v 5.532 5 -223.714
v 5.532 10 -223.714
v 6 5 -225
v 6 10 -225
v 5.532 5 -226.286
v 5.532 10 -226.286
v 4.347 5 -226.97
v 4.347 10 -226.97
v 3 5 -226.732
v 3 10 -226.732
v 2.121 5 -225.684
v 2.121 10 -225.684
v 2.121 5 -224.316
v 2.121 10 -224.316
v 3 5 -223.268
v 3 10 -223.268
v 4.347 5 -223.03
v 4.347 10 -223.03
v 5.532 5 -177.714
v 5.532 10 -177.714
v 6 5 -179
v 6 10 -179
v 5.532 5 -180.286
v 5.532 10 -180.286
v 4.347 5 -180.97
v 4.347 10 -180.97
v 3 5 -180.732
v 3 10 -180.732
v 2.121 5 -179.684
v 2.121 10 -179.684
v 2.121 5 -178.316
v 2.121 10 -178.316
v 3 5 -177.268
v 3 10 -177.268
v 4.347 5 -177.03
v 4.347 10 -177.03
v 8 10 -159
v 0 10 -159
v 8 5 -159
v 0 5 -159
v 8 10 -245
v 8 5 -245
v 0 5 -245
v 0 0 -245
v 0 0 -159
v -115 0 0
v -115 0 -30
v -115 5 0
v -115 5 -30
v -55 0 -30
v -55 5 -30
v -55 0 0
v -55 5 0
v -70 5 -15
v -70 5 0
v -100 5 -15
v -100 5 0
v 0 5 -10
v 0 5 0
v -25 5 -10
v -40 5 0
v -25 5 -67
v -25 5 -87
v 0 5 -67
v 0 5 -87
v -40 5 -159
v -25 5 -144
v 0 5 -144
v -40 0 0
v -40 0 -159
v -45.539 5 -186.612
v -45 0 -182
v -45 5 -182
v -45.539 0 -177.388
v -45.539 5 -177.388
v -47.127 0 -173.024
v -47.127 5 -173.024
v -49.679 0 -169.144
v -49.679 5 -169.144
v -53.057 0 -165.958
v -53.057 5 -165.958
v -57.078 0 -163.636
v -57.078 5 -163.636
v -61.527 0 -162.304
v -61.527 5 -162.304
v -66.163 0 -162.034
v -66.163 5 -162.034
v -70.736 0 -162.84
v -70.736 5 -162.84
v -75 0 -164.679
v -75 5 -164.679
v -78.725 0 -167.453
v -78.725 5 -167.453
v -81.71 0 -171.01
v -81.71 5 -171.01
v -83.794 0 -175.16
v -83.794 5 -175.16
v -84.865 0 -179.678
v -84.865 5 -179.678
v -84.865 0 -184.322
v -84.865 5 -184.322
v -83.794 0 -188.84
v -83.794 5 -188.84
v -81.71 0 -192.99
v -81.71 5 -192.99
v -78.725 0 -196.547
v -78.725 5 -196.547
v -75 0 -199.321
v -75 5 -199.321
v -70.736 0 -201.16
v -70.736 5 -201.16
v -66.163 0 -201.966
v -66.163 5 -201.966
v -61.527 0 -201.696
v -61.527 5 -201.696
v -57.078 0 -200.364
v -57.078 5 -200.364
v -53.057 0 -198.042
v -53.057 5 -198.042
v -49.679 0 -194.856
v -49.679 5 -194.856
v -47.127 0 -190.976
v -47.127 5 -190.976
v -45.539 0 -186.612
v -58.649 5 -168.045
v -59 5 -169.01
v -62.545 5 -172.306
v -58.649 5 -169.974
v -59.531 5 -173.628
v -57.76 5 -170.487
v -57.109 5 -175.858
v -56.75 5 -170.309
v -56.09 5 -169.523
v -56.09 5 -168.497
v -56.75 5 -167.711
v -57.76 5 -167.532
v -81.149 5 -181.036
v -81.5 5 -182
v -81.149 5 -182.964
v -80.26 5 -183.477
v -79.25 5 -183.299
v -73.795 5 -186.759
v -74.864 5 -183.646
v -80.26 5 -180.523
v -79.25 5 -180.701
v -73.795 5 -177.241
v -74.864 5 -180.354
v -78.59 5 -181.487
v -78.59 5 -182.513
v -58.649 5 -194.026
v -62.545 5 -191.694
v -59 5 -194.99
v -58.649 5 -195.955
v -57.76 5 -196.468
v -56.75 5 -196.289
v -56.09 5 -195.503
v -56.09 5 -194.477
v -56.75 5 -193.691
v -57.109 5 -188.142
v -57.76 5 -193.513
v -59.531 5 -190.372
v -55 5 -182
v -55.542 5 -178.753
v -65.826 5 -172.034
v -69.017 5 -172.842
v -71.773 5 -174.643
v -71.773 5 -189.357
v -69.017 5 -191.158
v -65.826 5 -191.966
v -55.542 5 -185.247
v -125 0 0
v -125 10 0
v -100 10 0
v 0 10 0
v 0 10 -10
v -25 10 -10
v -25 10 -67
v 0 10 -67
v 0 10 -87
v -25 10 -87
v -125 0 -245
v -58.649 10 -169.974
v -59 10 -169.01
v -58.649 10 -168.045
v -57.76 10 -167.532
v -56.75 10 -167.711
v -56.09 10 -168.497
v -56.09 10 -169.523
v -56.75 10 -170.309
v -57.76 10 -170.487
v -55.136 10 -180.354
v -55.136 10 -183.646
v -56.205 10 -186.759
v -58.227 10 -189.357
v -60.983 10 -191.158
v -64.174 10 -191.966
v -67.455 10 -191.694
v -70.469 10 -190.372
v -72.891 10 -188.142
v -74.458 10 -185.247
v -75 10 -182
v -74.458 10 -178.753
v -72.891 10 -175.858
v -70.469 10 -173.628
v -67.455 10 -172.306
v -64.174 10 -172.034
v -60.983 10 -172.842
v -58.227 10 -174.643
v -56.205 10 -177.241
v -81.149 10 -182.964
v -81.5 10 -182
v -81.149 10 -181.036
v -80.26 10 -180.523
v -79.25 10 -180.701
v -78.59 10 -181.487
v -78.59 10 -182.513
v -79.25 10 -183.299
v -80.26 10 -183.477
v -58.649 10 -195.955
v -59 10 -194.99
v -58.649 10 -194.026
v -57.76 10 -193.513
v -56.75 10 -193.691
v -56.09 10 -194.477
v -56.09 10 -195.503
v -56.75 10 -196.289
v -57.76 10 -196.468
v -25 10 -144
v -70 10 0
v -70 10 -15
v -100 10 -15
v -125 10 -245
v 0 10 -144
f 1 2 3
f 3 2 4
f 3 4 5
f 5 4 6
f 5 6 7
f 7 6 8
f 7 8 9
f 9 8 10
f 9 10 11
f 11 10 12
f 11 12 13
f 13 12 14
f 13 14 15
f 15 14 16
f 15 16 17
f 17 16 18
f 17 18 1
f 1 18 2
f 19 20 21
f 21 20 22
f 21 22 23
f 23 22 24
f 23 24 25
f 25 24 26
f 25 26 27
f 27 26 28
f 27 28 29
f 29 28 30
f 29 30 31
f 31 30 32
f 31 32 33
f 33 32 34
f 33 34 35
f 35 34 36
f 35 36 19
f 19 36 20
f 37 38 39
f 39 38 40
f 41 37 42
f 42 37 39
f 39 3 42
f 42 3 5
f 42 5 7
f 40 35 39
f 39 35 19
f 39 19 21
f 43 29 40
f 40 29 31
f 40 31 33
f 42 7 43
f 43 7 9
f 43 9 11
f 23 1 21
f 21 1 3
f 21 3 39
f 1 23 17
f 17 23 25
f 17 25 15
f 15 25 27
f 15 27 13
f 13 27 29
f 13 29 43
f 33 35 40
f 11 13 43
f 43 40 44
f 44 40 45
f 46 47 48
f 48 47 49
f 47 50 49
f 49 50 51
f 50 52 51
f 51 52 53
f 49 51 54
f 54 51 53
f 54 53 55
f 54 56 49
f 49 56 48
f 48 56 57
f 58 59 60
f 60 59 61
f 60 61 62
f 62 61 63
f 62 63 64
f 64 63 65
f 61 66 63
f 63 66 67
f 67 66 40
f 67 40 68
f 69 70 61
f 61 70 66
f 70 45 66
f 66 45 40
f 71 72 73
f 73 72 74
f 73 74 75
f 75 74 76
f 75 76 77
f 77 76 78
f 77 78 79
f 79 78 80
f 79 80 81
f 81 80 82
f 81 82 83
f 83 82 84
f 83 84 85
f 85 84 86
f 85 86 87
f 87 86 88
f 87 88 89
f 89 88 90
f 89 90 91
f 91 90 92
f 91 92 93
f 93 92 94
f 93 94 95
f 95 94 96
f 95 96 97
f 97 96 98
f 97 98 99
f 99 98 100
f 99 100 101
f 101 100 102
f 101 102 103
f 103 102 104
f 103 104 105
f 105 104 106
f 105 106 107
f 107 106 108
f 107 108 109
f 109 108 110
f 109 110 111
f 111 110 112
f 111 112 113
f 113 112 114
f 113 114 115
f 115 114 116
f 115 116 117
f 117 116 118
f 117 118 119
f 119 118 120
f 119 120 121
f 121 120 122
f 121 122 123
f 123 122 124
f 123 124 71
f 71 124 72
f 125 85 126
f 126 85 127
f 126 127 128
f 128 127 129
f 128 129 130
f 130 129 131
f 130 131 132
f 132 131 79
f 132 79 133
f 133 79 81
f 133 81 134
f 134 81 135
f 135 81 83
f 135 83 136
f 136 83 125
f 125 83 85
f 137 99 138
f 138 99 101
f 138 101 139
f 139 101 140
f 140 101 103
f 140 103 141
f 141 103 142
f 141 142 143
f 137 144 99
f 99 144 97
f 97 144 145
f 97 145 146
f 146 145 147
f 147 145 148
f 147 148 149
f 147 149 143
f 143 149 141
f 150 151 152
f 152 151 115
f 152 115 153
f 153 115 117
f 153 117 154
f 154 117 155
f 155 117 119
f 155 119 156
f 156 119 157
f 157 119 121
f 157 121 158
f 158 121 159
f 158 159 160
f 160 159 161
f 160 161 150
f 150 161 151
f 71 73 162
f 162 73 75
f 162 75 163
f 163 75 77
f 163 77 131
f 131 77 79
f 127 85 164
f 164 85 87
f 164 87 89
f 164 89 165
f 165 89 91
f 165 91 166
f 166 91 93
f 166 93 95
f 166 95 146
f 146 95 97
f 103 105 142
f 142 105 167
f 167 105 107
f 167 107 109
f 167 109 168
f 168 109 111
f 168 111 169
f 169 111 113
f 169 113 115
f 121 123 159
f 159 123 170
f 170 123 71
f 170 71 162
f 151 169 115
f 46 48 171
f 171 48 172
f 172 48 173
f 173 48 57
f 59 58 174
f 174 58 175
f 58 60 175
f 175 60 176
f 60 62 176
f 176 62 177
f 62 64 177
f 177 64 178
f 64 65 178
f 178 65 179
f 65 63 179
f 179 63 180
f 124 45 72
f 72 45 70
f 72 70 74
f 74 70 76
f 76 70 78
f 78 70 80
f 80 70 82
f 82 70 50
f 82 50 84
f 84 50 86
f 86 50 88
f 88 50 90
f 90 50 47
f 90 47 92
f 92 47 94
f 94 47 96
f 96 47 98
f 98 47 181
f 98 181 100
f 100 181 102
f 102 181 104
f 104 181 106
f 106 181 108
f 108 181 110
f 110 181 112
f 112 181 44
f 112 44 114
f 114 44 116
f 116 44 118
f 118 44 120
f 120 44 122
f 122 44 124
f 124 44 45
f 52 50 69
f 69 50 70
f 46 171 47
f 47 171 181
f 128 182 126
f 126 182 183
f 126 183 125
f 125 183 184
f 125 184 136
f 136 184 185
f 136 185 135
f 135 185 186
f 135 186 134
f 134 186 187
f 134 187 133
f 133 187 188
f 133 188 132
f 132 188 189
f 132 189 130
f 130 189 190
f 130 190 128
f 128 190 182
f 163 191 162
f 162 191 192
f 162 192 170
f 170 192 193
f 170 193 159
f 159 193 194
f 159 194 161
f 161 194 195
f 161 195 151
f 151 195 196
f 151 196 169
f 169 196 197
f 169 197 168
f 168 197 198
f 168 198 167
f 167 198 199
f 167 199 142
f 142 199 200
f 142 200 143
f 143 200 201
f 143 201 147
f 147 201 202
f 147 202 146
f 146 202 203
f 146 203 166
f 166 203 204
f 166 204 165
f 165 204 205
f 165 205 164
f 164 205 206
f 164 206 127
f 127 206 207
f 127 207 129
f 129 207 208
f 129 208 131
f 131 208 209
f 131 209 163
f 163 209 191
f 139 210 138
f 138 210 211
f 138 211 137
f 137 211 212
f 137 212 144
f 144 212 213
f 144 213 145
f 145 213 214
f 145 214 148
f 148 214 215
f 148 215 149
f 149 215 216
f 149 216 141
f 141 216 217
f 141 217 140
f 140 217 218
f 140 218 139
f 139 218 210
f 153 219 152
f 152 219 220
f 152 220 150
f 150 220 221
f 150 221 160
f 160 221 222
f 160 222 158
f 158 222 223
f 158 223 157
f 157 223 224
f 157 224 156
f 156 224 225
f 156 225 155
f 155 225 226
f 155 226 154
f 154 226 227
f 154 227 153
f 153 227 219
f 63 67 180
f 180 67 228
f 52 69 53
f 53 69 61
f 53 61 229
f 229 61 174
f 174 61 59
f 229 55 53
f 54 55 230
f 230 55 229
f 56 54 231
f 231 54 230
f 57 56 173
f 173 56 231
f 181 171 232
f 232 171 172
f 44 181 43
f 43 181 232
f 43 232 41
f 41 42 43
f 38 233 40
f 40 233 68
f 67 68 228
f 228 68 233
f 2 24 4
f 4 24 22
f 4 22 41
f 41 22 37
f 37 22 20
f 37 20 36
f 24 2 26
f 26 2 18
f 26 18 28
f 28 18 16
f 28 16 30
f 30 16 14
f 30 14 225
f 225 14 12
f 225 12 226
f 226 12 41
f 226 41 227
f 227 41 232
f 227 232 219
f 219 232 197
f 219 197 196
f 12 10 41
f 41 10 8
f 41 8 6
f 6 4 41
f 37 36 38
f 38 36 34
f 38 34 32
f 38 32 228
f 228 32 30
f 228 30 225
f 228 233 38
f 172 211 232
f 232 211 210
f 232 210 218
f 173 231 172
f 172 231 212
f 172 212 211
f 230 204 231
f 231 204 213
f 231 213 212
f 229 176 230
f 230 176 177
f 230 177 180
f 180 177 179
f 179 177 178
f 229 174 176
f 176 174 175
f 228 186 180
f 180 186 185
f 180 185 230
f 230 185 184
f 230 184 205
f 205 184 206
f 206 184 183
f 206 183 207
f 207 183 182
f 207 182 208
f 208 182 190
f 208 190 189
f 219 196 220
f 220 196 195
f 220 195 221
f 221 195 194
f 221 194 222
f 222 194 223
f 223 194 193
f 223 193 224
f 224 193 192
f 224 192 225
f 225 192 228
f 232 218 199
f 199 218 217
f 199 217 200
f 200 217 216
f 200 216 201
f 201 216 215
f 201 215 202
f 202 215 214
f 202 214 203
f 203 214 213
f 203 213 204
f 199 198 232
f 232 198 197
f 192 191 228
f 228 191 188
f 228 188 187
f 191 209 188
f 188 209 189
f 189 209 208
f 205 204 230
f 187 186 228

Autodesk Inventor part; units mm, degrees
ref_plane "YZ Plane" through (0, 0, 0) normal (1, 0, 0) x (0, 1, 0)
ref_plane "XZ Plane" through (0, 0, 0) normal (0, 1, 0) x (-1, 0, 0)
ref_plane "XY Plane" through (0, 0, 0) normal (0, 0, 1) x (1, 0, 0)
sketch "草图1" plane through (0, 0, 0) normal (0, 1, 0) x (-1, 0, 0)
  line L0 (125, 245) -> (-125, 245)
  line L1 (-125, 245) -> (-125, -245)
  line L2 (-125, -245) -> (125, -245)
  line L3 (125, -245) -> (125, 245)
  line L4 (0, 3) -> (0, -5)
  line L5 (3.5058, 0) -> (-3.4421, 0)
  line L6 (25, 144) -> (-32, 144)
  line L7 (-32, 144) -> (-32, 87)
  line L8 (-32, 87) -> (25, 87)
  line L9 (25, 87) -> (25, 144)
  line L10 (25, 67) -> (-32, 67)
  line L11 (-32, 67) -> (-32, 10)
  line L12 (-32, 10) -> (25, 10)
  line L13 (25, 10) -> (25, 67)
  line L14 (25, -10) -> (-32, -10)
  line L15 (-32, -10) -> (-32, -67)
  line L16 (-32, -67) -> (25, -67)
  line L17 (25, -67) -> (25, -10)
  line L18 (25, -87) -> (-32, -87)
  line L19 (-32, -87) -> (-32, -144)
  line L20 (-32, -144) -> (25, -144)
  line L21 (25, -144) -> (25, -87)
  line L22 (-66, 100) -> (-95, 100)
  line L23 (-95, 100) -> (-95, 54)
  line L24 (-95, 54) -> (-66, 54)
  line L25 (-66, 54) -> (-66, 100)
  line L26 (-66, -54) -> (-95, -54)
  line L27 (-95, -54) -> (-95, -100)
  line L28 (-95, -100) -> (-66, -100)
  line L29 (-66, -100) -> (-66, -54)
  line L30 (100, 15) -> (70, 15)
  line L31 (70, 15) -> (70, -15)
  line L32 (70, -15) -> (100, -15)
  line L33 (100, -15) -> (100, 15)
  circle A0 centre (65, 182) radius 10
  circle A1 centre (65, -182) radius 10
  circle A2 centre (65, 182) radius 15
  circle A3 centre (80, 182) radius 1.5
  circle A4 centre (57.5, 194.9904) radius 1.5
  circle A5 centre (57.5, 169.0096) radius 1.5
  line L34 (125, 245) -> (0, 245)
  line L35 (0, 245) -> (0, 0)
  line L36 (0, 0) -> (125, 0)
  line L37 (125, 0) -> (125, 245)
  line L38 (-125, 245) -> (0, 245)
  line L39 (0, 245) -> (0, 0)
  line L40 (0, 0) -> (-125, 0)
  line L41 (-125, 0) -> (-125, 245)
  line L42 (-125, -245) -> (0, -245)
  line L43 (0, -245) -> (0, 0)
  line L44 (0, 0) -> (-125, 0)
  line L45 (-125, 0) -> (-125, -245)
  line L46 (125, -245) -> (0, -245)
  line L47 (0, -245) -> (0, 0)
  line L48 (0, 0) -> (125, 0)
  line L49 (125, 0) -> (125, -245)
  circle A6 centre (65, -182) radius 15
  circle A7 centre (80, -182) radius 1.5
  circle A8 centre (57.5, -169.0096) radius 1.5
  circle A9 centre (57.5, -194.9904) radius 1.5
  point P0 (0, -144)
  point P1 (100, 0)
  point P2 (70, 0)
  point P3 (0, -10)
  point P4 (0, -67)
  point P5 (0, -87)
  dimension "d33" = 30
  dimension "d36" = 30
  dimension "d2" = 490
  dimension "d3" = 250
  dimension "d4" = 57
  dimension "d5" = 57
  dimension "d6" = 57
  dimension "d7" = 57
  dimension "d8" = 57
  dimension "d9" = 57
  dimension "d10" = 57
  dimension "d11" = 57
  dimension "d12" = 101
  dimension "d13" = 20
  dimension "d14" = 20
  dimension "d15" = 20
  dimension "d16" = 93
  dimension "d17" = 29
  dimension "d18" = 46
  dimension "d19" = 46
  dimension "d20" = 145
  dimension "d21" = 108
  dimension "d22" = 30
  dimension "d23" = 30
  dimension "d24" = 30
  dimension "d25" = 25
  dimension "d26" = 230
  dimension "d27" = 20
  dimension "d28" = 63
  dimension "d29" = 60
  dimension "d30" = 20
  dimension "d31" = 63
  dimension "d32" = 60
  dimension "d34" = 3
  dimension "d35" = 360
  dimension "d37" = 3
  dimension "d40" = 360
extrude "拉伸1" add sketch "草图1" along normal blind 10 contours L3 L2 L43 L20 L21 L18 L16 L17 L14 L4 L5 L36 L31 L32 L33 | A7 A6 A9 A8
sketch "草图2" plane through (0, 0, 0) normal (0, -1, 0) x (1, 0, 0)
  line L0 (-70, 0) -> (0, 0) projected
  line L1 (-115, -30) -> (-55, -30)
  line L2 (-55, -30) -> (-55, 0)
  line L3 (-55, 0) -> (-115, 0)
  line L4 (-115, 0) -> (-115, -30)
  line L5 (-100, -15) -> (-70, -15) projected
  line L6 (-100, 0) -> (-100, -15) projected
  line L7 (-70, -15) -> (-70, 0) projected
  line L8 (-40, -159) -> (0, -159)
  line L9 (0, -159) -> (0, 0)
  line L10 (0, 0) -> (-40, 0)
  line L11 (-40, 0) -> (-40, -159)
  line L12 (-25, -10) -> (-25, -67) projected
  line L13 (-25, -144) -> (0, -144) projected
  circle A0 centre (-65, -182) radius 10 projected
  circle A1 centre (-65, -182) radius 20
  dimension "d44" = 15
  dimension "d45" = 15
  dimension "d46" = 15
  dimension "d47" = 15
  dimension "d48" = 15
  dimension "d49" = 40
extrude "拉伸2" cut sketch "草图2" against normal blind 5 contours L0 L9 L8 L11 | L0 L2 L1 L4 L3 L6 L5 L7 | A1
sketch "草图5" plane through (0, 10, 0) normal (0, 1, 0) x (1, 0, 0)
  line L0 (0, 159) -> (-40, 159) projected
  line L1 (0, 159) -> (8, 159)
  line L2 (8, 159) -> (8, 245)
  line L3 (8, 245) -> (0, 245)
  line L4 (0, 245) -> (0, 159)
  circle A0 centre (4, 179) radius 2
  circle A1 centre (4, 225) radius 2
  point P0 (0, 0)
  dimension "d64" = 8
  dimension "d65" = 4
  dimension "d67" = 4
  dimension "d68" = 4
  dimension "d70" = 4
  dimension "d73" = 20
  dimension "d76" = 20
extrude "拉伸4" add sketch "草图5" against normal blind 5
properties part number "top_2"
